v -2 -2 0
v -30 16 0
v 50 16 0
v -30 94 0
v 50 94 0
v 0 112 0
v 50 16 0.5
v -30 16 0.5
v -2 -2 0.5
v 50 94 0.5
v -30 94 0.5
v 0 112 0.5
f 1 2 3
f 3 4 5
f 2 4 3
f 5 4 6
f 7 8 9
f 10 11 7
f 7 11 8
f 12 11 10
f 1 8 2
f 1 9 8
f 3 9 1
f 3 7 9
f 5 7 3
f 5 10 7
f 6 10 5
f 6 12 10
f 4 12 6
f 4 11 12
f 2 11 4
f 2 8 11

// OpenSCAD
$t=2;
$h=0.5;
linear_extrude($h){
polygon([[0-$t,0-$t],[48+$t,18-$t],[48+$t,92+$t],[0,110+$t]]);//,[-25,98],[-25,13],[98,-25]
polygon([[0-$t,0-$t],[-28-$t,18-$t],[-28-$t,92+$t],[0,110+$t]]);}
